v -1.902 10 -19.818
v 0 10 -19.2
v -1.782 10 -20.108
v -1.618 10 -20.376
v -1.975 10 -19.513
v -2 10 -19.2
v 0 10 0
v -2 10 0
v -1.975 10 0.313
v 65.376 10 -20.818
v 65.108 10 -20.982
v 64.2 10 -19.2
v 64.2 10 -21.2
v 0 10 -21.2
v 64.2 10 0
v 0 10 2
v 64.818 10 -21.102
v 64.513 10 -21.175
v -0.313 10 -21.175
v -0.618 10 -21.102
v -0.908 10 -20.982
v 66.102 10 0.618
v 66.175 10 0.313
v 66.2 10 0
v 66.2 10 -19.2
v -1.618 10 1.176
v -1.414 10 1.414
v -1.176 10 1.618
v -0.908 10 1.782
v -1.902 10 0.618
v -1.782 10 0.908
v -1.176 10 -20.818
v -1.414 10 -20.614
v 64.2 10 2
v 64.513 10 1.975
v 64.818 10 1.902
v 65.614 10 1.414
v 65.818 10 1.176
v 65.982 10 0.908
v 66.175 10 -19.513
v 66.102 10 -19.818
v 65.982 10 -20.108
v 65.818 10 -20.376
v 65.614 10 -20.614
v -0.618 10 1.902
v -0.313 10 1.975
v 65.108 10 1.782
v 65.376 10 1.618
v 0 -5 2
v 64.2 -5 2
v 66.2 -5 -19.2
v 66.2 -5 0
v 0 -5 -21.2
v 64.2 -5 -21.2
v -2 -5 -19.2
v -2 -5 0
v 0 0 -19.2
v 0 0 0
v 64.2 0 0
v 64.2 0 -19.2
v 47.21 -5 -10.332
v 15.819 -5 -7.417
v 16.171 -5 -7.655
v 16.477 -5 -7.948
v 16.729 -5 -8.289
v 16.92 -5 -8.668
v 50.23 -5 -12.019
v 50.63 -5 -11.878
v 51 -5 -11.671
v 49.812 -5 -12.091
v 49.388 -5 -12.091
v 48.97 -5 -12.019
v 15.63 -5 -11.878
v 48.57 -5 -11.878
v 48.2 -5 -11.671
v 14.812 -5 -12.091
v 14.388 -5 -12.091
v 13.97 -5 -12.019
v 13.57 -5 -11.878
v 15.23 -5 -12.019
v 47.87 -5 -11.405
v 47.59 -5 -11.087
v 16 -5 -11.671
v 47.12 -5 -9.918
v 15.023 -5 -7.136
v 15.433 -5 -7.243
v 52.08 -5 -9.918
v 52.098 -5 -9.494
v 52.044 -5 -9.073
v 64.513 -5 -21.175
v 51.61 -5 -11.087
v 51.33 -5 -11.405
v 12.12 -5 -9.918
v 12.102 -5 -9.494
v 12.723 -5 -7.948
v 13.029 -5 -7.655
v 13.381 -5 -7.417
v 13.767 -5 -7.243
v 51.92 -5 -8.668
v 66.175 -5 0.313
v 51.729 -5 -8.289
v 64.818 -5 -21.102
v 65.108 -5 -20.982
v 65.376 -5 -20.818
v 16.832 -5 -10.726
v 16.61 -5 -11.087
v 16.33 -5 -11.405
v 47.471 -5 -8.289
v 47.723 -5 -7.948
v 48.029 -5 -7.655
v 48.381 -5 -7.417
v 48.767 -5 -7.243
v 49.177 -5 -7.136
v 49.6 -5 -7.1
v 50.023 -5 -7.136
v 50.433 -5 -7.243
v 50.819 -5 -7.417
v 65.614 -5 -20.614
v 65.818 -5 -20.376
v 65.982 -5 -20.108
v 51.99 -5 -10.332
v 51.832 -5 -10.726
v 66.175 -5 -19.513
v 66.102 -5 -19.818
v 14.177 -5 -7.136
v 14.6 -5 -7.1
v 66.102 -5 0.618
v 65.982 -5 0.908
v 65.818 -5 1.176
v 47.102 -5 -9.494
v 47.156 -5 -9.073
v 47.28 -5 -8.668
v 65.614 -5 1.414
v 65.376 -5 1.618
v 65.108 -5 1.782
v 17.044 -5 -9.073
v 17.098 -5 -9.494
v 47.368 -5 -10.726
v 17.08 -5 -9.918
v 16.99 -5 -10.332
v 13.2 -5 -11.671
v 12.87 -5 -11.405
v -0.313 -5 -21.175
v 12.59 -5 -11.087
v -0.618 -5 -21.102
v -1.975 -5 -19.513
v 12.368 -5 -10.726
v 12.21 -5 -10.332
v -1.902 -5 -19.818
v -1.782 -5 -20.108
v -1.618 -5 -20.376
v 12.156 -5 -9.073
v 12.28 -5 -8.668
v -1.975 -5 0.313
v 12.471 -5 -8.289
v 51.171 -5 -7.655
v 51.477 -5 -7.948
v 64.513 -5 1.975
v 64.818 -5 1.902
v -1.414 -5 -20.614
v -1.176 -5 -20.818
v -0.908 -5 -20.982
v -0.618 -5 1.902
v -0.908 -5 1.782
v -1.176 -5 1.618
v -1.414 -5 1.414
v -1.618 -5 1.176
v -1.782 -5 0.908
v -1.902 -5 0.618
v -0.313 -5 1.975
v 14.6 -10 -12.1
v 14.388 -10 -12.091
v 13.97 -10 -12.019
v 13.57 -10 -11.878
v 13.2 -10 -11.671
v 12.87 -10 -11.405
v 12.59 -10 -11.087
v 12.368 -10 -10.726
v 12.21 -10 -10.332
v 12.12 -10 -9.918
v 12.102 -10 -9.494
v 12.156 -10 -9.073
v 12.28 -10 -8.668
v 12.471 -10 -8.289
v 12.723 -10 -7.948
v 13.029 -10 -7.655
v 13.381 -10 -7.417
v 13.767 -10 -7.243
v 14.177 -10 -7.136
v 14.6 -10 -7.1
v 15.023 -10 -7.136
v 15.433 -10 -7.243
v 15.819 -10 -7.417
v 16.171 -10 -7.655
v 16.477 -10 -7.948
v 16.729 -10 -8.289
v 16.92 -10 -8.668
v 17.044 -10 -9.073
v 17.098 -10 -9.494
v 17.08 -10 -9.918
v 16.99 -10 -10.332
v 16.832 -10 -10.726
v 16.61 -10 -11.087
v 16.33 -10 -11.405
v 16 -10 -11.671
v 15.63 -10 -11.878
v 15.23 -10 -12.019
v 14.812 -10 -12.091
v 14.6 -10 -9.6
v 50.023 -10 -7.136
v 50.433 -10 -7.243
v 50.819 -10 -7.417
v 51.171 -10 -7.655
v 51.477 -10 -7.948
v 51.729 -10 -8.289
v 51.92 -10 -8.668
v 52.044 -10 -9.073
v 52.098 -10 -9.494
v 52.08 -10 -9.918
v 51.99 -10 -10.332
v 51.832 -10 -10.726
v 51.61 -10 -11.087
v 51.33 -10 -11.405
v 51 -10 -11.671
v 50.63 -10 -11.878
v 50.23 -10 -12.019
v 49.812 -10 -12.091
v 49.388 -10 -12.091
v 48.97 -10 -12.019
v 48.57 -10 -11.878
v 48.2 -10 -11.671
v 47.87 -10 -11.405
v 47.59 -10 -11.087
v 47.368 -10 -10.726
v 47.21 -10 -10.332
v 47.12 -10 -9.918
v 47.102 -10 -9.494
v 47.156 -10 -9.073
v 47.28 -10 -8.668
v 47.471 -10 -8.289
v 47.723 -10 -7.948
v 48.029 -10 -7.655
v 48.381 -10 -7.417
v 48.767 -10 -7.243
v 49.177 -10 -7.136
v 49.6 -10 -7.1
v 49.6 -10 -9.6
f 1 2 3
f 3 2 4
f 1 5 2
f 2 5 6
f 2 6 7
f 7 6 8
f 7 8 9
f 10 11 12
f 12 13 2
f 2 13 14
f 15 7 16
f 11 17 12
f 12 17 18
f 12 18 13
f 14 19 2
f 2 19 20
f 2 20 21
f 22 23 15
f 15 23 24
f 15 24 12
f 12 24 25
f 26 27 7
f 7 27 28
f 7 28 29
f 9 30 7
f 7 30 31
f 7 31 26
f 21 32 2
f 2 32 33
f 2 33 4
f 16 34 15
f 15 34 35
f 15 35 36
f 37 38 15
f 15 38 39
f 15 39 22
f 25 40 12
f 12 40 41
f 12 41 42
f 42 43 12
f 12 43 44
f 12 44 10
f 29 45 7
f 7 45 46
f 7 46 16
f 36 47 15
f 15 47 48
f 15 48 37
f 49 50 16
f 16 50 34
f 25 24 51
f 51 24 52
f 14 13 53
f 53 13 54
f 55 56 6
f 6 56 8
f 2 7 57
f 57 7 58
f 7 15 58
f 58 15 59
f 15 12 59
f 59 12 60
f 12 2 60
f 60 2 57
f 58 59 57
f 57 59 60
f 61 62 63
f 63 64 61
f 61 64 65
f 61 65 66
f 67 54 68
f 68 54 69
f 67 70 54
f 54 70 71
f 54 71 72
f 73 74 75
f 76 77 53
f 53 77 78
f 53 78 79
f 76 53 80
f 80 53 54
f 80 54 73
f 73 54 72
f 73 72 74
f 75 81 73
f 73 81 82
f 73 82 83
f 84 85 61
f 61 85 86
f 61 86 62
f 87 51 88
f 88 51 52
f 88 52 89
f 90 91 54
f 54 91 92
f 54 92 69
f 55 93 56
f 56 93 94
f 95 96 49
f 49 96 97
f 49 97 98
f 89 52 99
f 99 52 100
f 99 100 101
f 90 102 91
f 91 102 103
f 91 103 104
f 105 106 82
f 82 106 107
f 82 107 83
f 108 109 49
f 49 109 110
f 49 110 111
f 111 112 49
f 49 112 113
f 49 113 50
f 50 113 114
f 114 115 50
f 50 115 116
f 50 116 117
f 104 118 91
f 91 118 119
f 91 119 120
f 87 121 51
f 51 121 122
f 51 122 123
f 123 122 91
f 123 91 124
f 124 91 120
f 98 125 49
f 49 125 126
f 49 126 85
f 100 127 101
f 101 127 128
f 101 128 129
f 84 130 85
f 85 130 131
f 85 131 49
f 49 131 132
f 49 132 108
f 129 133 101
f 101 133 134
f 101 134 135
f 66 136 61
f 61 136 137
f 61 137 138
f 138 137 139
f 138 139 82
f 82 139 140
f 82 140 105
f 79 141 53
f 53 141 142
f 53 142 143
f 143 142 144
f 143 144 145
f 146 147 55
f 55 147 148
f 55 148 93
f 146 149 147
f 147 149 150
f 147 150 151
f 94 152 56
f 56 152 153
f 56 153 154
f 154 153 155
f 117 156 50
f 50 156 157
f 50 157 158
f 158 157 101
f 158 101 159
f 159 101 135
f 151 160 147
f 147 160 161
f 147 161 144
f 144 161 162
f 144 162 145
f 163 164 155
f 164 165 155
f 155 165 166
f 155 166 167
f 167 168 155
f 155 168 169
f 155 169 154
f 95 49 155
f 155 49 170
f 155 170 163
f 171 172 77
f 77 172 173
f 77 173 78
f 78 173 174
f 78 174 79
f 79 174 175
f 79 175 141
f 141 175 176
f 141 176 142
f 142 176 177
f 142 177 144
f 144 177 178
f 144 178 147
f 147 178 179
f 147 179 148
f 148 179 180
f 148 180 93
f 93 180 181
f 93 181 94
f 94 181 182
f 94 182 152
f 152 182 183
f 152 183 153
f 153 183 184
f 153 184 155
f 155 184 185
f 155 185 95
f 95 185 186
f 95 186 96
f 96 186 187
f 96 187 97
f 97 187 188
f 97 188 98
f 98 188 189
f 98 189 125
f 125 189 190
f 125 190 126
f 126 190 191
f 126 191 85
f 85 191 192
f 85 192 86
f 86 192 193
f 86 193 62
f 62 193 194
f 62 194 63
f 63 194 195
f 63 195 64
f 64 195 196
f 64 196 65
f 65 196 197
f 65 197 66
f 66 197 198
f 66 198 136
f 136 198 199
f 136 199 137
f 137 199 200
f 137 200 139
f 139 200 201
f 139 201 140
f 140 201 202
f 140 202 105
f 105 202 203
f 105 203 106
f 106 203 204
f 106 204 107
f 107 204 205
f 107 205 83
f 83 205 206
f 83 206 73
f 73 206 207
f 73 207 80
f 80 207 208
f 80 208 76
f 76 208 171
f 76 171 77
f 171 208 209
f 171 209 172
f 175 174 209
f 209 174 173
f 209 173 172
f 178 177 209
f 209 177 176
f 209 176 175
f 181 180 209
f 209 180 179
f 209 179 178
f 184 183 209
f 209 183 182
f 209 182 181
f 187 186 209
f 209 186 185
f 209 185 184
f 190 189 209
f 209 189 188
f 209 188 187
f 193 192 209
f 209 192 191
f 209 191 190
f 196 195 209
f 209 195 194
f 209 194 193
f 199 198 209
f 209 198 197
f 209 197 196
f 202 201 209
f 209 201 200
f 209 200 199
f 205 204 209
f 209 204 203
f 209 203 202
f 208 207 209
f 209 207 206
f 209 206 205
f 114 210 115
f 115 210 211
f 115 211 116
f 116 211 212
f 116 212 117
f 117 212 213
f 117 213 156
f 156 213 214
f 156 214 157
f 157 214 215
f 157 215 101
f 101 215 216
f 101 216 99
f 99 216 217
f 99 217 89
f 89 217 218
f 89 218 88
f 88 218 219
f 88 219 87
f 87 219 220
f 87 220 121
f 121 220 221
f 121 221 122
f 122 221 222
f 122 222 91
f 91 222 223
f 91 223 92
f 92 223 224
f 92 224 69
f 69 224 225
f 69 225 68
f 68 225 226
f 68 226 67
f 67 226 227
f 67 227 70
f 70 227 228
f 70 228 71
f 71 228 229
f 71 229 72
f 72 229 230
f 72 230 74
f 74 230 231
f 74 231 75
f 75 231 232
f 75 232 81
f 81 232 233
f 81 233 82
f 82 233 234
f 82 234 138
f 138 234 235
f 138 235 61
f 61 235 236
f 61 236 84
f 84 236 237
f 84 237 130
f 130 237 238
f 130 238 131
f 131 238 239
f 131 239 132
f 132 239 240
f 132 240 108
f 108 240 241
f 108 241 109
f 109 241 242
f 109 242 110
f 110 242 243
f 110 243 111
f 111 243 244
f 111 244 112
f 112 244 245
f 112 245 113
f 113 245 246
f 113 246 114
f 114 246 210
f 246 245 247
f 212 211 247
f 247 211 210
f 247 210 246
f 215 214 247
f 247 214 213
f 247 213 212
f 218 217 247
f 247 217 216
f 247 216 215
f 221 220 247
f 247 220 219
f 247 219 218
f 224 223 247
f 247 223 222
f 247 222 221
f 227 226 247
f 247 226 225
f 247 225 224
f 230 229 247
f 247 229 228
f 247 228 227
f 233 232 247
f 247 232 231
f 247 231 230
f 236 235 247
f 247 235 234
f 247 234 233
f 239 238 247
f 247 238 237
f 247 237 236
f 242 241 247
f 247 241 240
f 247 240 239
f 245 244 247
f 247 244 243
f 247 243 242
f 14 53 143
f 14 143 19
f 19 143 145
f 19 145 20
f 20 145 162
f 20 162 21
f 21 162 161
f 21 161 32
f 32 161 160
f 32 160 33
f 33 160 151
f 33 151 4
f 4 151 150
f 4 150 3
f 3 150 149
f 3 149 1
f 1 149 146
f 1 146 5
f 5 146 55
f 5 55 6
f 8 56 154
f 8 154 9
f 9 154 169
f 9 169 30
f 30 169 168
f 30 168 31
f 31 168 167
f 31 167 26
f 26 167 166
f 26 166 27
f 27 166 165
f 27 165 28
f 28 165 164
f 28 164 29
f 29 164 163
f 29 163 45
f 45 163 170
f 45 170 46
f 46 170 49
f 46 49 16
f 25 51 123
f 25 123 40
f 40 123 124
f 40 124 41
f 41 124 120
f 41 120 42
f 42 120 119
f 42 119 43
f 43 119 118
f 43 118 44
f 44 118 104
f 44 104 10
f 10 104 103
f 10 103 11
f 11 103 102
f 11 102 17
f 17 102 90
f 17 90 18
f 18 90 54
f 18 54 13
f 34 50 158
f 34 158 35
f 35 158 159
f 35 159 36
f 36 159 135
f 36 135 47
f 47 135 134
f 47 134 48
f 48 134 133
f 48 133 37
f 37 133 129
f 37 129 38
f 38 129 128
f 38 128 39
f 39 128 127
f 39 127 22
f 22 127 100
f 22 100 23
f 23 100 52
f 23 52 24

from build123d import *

# Parameters (mm, degrees)
SKETCH1_W           = 68.2
SKETCH1_H           = 23.2
SKETCH1_W_2         = 64.2
SKETCH1_H_2         = 19.2
BOSS_EXTRUDE1_DEPTH = 10
SKETCH1_2_W         = 68.2
SKETCH1_2_H         = 23.2
BOSS_EXTRUDE2_DEPTH = 5
SKETCH2_R           = 2.5
BOSS_EXTRUDE3_DEPTH = 5
FILLET1_R           = 2


with BuildPart() as part:
    # Sketch1 → Boss-Extrude1 (new body)
    with BuildSketch(Plane(origin=(0, 0, 0), x_dir=(1, 0, 0), z_dir=(0, 1, 0))):
        with Locations((32.1, 9.6)):
            Rectangle(SKETCH1_W, SKETCH1_H)
        with Locations((32.1, 9.6)):
            Rectangle(SKETCH1_W_2, SKETCH1_H_2, mode=Mode.SUBTRACT)
    extrude(amount=BOSS_EXTRUDE1_DEPTH)

    # Sketch1<2> → Boss-Extrude2 (add)
    with BuildSketch(Plane(origin=(0, 0, 0), x_dir=(1, 0, 0), z_dir=(0, 1, 0))):
        with Locations((32.1, 9.6)):
            Rectangle(SKETCH1_2_W, SKETCH1_2_H)
    extrude(amount=-BOSS_EXTRUDE2_DEPTH)

    # Sketch2 → Boss-Extrude3 (add)
    with BuildSketch(Plane.XZ.offset(5)):
        with Locations((14.6, -9.6)):
            Circle(SKETCH2_R)
        with Locations((49.6, -9.6)):
            Circle(SKETCH2_R)
    extrude(amount=BOSS_EXTRUDE3_DEPTH)

    # Fillet1
    fillet1_edges = [part.edges().sort_by_distance(p)[0] for p in [
        (-2, 2.5, -21.2),
        (-2, 2.5, 2),
        (66.2, 2.5, -21.2),
        (66.2, 2.5, 2),
    ]]
    fillet(fillet1_edges, radius=FILLET1_R)


solid = part.part
